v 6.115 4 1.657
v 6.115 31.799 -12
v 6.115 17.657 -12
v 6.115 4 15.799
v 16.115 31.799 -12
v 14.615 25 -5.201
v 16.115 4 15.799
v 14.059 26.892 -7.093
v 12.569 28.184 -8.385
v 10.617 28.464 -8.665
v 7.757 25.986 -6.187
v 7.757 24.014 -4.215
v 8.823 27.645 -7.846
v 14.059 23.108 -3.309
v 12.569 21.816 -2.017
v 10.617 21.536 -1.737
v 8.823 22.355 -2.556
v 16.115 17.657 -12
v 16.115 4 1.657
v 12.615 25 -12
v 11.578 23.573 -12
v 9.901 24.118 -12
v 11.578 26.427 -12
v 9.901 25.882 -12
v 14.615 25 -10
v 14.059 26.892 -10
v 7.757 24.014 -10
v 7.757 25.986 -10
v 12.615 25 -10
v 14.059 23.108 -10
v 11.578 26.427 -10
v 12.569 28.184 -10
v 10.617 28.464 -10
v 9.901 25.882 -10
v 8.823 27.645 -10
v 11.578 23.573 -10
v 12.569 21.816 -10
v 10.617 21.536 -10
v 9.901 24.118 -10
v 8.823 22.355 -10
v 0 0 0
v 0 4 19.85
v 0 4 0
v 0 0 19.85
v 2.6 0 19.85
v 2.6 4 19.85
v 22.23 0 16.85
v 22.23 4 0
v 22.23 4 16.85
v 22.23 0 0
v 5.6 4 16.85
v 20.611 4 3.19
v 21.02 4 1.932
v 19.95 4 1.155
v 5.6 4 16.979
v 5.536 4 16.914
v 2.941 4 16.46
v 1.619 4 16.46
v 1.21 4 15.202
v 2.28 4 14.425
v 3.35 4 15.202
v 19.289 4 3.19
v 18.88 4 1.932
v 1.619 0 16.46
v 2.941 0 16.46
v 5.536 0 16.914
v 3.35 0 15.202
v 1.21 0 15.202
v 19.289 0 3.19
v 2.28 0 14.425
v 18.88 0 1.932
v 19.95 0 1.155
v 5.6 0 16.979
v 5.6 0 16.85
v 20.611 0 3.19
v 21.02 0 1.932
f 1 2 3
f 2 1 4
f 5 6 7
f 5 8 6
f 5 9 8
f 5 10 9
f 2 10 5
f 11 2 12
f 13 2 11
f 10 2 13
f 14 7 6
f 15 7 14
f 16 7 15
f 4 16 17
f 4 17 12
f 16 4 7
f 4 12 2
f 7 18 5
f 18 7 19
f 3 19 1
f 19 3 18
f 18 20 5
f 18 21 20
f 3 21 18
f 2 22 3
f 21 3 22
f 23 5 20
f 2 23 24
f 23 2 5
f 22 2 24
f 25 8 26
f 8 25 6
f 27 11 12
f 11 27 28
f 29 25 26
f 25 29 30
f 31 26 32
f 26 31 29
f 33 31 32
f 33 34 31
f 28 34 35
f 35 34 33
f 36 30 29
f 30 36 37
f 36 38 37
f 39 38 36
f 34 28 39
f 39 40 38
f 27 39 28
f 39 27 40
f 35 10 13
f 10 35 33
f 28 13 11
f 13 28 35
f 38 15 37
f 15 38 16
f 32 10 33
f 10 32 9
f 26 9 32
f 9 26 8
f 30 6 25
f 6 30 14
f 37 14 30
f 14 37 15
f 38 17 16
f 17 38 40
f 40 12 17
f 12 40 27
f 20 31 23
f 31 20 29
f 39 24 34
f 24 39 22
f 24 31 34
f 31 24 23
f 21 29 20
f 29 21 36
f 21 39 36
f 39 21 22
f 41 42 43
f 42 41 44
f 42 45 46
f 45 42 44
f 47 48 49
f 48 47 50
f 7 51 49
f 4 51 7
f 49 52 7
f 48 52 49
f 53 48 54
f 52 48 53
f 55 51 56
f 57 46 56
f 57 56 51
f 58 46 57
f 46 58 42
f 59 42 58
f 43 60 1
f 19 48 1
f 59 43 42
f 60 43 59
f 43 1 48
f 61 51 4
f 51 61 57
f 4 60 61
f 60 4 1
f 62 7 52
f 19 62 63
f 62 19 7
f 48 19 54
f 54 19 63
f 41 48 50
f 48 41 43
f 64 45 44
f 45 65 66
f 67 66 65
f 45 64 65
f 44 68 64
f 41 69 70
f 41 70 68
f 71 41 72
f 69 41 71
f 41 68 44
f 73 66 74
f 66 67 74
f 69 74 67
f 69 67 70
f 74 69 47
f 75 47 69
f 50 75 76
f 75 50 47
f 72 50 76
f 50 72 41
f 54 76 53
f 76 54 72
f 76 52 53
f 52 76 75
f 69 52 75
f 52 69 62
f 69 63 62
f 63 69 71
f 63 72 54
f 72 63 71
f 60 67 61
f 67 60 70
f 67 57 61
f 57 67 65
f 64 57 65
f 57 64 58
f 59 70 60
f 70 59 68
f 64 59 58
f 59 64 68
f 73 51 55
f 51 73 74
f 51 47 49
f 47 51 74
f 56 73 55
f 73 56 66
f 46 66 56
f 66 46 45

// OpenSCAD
width = 22.23;
height = 19.85;
post = 10;
difference() {
  rotate([-45,0,0]) {
    translate([width/2-post/2,-9,4]) {
      cube([post,40,post]);
    }
  }
  translate([0,-4,0]) {
    cube([20,5,20]);
  }
  translate([0,14,-12]) {
    rotate([270,0,0]) {
      cube([20,10,20]);
    }
  }
  translate([width/2,25,-10]) {
    cylinder(r = post/2-1.5, h = 20);
  }
    translate([width/2,25,-15]) {
      cylinder(r = 1.5, h = 20);
    }
}
difference() {
  cube([width, 4, height]);
  translate([width - 2.28, 5, 2.28]) {
    rotate([90,90,0]) {
      cylinder(r = 1.125, h = 6);
    }
  }
  translate([2.28, 5, height - 4.3]) {
    rotate([90,90,0]) {
      cylinder(r = 1.125, h = 6);
    }
  }
  translate([5.6,-1,height-3]) {
    cube([width,6,10]);
  }
  translate([2,-1,height+0.6]) {
    rotate([0,45,0]) {
      cube([5,10,10]);
    }
  }
}
